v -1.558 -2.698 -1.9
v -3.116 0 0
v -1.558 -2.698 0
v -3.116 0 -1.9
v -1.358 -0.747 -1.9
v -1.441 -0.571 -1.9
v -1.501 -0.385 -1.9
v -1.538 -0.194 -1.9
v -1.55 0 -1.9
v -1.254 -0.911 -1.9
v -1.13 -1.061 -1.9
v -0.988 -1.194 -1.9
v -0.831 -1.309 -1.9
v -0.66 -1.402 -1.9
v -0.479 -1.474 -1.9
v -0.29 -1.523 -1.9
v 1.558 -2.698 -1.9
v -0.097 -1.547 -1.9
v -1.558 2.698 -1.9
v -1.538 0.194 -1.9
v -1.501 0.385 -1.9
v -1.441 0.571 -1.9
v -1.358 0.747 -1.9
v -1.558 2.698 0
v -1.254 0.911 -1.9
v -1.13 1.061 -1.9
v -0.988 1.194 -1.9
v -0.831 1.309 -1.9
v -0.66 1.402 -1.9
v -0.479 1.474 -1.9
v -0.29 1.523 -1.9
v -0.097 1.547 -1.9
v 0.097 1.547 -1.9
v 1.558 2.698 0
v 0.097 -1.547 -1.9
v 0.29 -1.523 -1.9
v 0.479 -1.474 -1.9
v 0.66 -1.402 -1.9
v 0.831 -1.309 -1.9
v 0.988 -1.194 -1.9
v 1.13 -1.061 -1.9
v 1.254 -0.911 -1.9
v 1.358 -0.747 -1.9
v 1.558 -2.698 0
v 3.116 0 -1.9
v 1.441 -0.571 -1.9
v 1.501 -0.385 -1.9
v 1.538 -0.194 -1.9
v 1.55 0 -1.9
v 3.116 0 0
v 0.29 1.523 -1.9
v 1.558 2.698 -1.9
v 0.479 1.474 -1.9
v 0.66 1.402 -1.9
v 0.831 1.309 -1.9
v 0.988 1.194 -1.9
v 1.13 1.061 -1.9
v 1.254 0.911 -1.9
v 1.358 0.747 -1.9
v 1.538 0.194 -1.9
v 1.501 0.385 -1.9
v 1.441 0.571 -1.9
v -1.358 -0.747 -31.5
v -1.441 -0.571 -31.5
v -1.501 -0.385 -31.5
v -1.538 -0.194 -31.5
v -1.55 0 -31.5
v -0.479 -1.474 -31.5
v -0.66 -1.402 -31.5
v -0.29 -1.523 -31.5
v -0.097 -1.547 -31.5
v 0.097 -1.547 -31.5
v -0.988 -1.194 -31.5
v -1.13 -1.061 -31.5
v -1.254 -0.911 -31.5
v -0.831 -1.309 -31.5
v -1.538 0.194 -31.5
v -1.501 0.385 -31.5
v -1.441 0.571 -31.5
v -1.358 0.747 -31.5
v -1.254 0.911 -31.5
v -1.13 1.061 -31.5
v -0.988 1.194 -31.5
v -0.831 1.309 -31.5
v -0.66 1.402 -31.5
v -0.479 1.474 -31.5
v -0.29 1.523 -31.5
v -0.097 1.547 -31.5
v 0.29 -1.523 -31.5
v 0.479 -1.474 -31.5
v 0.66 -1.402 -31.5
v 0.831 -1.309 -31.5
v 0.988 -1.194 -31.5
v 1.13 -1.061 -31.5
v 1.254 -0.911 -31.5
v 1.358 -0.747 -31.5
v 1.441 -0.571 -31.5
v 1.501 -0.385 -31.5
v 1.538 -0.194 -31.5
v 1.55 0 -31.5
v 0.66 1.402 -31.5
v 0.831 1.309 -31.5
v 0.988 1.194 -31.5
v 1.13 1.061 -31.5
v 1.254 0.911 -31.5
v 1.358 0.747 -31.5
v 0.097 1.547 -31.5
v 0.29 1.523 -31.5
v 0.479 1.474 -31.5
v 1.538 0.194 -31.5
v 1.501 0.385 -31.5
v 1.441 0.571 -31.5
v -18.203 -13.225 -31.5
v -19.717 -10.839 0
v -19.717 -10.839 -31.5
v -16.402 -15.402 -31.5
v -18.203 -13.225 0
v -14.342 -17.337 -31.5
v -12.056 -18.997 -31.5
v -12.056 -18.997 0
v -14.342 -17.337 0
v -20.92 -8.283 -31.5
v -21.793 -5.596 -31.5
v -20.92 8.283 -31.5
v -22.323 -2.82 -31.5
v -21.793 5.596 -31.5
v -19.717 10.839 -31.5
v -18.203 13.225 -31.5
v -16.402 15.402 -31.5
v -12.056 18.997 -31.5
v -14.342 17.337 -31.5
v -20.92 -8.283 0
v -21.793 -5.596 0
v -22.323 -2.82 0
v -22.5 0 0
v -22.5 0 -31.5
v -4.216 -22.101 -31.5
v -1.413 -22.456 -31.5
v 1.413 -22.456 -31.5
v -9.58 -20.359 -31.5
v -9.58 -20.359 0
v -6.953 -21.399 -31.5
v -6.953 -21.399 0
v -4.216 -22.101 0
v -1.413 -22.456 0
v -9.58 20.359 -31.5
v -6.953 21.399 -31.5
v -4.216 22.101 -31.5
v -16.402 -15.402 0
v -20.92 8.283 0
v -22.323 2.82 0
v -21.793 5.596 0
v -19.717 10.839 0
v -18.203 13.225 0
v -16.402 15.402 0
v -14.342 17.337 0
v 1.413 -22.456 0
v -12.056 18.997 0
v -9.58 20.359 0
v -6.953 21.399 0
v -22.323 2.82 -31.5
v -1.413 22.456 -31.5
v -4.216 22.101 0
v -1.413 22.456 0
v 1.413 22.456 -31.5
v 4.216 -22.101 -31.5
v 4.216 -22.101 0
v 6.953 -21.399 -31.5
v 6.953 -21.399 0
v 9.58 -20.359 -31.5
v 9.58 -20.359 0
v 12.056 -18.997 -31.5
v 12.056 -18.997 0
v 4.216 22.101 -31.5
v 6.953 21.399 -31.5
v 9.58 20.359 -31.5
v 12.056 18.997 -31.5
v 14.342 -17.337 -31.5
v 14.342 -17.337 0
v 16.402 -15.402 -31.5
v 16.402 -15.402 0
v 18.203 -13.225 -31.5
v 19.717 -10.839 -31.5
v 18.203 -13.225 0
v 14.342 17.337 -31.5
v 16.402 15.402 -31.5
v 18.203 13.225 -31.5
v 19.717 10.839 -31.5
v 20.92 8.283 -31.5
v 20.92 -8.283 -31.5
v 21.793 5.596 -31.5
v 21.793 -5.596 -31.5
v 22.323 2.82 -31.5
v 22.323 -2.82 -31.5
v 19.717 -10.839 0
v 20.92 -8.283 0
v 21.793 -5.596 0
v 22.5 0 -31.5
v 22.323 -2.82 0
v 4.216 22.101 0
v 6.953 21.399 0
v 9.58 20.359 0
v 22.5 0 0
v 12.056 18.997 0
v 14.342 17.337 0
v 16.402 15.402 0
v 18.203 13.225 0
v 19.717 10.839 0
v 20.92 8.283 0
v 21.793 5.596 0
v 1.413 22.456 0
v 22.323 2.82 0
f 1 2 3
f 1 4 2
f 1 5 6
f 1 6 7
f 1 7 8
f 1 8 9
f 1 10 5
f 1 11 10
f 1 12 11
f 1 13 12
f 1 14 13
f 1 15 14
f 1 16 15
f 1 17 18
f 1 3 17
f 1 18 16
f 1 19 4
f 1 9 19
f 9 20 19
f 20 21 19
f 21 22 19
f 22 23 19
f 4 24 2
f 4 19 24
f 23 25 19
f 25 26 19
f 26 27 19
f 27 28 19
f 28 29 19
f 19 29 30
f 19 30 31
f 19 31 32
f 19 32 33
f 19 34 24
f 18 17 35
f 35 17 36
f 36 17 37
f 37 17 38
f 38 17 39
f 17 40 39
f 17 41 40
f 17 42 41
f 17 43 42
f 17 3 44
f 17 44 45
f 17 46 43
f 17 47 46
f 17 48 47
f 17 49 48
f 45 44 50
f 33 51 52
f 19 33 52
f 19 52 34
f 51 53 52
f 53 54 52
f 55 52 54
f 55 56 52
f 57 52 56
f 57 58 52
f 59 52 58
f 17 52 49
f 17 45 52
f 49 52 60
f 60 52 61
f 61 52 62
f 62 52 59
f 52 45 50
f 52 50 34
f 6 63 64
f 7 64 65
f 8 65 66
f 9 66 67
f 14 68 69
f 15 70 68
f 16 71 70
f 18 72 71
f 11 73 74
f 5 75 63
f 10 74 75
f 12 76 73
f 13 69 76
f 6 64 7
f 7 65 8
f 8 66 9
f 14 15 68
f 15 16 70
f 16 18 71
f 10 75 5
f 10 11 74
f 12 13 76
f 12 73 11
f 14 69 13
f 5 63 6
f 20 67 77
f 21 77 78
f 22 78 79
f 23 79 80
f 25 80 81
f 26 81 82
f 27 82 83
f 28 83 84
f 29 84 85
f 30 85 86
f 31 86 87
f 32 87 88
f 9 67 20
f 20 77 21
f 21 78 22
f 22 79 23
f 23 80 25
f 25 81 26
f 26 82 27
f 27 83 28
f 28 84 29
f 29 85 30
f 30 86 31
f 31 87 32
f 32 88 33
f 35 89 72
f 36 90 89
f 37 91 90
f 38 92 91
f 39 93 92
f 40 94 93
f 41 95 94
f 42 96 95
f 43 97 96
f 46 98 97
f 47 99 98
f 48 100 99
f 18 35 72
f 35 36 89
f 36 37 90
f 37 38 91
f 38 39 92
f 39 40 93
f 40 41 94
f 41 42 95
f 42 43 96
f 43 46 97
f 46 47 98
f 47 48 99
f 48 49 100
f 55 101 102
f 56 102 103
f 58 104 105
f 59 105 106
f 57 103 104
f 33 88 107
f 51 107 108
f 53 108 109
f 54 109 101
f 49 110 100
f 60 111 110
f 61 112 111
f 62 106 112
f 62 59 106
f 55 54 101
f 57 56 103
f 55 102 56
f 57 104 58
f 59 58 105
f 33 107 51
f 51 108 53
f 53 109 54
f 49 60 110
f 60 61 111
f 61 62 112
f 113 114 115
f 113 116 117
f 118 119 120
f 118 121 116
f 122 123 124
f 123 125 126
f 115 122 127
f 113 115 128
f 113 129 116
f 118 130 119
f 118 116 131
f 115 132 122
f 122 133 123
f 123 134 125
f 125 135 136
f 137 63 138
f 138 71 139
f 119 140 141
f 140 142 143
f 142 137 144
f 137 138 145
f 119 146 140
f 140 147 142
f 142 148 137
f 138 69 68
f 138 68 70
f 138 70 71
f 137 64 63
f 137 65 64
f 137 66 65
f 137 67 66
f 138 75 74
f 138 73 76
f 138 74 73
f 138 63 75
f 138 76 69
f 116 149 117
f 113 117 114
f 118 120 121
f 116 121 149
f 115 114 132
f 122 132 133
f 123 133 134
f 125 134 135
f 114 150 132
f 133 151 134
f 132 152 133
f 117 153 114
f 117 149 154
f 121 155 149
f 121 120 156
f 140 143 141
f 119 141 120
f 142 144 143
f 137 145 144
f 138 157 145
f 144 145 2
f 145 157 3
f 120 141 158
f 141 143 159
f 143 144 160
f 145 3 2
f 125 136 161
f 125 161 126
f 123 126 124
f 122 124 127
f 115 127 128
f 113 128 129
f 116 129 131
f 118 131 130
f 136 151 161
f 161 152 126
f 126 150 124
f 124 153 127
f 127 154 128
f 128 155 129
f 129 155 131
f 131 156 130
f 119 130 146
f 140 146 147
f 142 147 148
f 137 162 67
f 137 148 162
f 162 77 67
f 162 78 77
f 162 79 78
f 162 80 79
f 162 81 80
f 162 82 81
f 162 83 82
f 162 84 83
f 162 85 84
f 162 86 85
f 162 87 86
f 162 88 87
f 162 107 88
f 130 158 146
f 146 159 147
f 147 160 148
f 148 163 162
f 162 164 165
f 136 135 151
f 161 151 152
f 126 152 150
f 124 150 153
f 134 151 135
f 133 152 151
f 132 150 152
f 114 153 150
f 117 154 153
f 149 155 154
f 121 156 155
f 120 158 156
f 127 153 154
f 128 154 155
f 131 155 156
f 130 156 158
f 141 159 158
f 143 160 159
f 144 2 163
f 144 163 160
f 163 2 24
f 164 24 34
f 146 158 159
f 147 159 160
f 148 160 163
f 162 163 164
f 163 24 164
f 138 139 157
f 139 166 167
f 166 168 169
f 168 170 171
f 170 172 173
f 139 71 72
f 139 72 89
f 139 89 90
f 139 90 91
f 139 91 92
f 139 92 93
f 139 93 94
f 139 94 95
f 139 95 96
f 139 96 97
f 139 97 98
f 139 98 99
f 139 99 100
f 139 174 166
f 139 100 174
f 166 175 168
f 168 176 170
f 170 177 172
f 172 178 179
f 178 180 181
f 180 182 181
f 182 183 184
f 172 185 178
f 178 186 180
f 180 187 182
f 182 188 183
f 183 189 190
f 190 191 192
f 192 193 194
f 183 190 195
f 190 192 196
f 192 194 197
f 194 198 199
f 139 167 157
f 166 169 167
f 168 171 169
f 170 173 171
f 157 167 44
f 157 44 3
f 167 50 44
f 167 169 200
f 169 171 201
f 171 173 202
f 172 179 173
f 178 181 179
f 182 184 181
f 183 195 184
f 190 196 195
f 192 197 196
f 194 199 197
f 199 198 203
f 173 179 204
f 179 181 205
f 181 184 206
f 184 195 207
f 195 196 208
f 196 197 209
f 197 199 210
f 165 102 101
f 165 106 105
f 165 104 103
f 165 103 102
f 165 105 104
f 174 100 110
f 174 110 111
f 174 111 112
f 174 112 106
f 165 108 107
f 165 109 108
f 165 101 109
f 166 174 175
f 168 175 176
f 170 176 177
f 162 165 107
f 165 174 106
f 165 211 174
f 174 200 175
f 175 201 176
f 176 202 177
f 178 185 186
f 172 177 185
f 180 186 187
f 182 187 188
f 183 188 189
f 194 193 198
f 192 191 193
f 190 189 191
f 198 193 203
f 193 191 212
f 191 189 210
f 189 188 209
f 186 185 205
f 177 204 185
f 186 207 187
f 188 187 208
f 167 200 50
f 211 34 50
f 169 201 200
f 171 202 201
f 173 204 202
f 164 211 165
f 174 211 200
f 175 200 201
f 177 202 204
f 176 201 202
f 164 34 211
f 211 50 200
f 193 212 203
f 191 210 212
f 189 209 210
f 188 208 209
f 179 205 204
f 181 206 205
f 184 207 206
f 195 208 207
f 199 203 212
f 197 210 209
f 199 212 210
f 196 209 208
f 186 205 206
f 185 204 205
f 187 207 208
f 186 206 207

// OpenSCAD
$fn = 50;

difference() {
	union() {
		translate(v = [0, 0, -31.5]) {
			cylinder(h = 31.5, r = 22.5);
		}
	}
	union() {
		translate(v = [0, 0, 0]) {
			rotate(a = [0, 0, 0]) {
				difference() {
					union() {
						translate(v = [0, 0, -1.9]) {
							linear_extrude(height = 1.9) {
								polygon(points = [[3.1158, 0.0], [1.5579000000000005, 2.698361953111554], [-1.5578999999999994, 2.6983619531115544], [-3.1158, 3.815754496783323e-16], [-1.5579000000000014, -2.6983619531115535], [1.557899999999998, -2.6983619531115552]]);
							}
						}
					}
					union();
				}
			}
		}
		#translate(v = [0, 0, -100.0]) {
			cylinder(h = 200, r = 1.55);
		}
	}
}
